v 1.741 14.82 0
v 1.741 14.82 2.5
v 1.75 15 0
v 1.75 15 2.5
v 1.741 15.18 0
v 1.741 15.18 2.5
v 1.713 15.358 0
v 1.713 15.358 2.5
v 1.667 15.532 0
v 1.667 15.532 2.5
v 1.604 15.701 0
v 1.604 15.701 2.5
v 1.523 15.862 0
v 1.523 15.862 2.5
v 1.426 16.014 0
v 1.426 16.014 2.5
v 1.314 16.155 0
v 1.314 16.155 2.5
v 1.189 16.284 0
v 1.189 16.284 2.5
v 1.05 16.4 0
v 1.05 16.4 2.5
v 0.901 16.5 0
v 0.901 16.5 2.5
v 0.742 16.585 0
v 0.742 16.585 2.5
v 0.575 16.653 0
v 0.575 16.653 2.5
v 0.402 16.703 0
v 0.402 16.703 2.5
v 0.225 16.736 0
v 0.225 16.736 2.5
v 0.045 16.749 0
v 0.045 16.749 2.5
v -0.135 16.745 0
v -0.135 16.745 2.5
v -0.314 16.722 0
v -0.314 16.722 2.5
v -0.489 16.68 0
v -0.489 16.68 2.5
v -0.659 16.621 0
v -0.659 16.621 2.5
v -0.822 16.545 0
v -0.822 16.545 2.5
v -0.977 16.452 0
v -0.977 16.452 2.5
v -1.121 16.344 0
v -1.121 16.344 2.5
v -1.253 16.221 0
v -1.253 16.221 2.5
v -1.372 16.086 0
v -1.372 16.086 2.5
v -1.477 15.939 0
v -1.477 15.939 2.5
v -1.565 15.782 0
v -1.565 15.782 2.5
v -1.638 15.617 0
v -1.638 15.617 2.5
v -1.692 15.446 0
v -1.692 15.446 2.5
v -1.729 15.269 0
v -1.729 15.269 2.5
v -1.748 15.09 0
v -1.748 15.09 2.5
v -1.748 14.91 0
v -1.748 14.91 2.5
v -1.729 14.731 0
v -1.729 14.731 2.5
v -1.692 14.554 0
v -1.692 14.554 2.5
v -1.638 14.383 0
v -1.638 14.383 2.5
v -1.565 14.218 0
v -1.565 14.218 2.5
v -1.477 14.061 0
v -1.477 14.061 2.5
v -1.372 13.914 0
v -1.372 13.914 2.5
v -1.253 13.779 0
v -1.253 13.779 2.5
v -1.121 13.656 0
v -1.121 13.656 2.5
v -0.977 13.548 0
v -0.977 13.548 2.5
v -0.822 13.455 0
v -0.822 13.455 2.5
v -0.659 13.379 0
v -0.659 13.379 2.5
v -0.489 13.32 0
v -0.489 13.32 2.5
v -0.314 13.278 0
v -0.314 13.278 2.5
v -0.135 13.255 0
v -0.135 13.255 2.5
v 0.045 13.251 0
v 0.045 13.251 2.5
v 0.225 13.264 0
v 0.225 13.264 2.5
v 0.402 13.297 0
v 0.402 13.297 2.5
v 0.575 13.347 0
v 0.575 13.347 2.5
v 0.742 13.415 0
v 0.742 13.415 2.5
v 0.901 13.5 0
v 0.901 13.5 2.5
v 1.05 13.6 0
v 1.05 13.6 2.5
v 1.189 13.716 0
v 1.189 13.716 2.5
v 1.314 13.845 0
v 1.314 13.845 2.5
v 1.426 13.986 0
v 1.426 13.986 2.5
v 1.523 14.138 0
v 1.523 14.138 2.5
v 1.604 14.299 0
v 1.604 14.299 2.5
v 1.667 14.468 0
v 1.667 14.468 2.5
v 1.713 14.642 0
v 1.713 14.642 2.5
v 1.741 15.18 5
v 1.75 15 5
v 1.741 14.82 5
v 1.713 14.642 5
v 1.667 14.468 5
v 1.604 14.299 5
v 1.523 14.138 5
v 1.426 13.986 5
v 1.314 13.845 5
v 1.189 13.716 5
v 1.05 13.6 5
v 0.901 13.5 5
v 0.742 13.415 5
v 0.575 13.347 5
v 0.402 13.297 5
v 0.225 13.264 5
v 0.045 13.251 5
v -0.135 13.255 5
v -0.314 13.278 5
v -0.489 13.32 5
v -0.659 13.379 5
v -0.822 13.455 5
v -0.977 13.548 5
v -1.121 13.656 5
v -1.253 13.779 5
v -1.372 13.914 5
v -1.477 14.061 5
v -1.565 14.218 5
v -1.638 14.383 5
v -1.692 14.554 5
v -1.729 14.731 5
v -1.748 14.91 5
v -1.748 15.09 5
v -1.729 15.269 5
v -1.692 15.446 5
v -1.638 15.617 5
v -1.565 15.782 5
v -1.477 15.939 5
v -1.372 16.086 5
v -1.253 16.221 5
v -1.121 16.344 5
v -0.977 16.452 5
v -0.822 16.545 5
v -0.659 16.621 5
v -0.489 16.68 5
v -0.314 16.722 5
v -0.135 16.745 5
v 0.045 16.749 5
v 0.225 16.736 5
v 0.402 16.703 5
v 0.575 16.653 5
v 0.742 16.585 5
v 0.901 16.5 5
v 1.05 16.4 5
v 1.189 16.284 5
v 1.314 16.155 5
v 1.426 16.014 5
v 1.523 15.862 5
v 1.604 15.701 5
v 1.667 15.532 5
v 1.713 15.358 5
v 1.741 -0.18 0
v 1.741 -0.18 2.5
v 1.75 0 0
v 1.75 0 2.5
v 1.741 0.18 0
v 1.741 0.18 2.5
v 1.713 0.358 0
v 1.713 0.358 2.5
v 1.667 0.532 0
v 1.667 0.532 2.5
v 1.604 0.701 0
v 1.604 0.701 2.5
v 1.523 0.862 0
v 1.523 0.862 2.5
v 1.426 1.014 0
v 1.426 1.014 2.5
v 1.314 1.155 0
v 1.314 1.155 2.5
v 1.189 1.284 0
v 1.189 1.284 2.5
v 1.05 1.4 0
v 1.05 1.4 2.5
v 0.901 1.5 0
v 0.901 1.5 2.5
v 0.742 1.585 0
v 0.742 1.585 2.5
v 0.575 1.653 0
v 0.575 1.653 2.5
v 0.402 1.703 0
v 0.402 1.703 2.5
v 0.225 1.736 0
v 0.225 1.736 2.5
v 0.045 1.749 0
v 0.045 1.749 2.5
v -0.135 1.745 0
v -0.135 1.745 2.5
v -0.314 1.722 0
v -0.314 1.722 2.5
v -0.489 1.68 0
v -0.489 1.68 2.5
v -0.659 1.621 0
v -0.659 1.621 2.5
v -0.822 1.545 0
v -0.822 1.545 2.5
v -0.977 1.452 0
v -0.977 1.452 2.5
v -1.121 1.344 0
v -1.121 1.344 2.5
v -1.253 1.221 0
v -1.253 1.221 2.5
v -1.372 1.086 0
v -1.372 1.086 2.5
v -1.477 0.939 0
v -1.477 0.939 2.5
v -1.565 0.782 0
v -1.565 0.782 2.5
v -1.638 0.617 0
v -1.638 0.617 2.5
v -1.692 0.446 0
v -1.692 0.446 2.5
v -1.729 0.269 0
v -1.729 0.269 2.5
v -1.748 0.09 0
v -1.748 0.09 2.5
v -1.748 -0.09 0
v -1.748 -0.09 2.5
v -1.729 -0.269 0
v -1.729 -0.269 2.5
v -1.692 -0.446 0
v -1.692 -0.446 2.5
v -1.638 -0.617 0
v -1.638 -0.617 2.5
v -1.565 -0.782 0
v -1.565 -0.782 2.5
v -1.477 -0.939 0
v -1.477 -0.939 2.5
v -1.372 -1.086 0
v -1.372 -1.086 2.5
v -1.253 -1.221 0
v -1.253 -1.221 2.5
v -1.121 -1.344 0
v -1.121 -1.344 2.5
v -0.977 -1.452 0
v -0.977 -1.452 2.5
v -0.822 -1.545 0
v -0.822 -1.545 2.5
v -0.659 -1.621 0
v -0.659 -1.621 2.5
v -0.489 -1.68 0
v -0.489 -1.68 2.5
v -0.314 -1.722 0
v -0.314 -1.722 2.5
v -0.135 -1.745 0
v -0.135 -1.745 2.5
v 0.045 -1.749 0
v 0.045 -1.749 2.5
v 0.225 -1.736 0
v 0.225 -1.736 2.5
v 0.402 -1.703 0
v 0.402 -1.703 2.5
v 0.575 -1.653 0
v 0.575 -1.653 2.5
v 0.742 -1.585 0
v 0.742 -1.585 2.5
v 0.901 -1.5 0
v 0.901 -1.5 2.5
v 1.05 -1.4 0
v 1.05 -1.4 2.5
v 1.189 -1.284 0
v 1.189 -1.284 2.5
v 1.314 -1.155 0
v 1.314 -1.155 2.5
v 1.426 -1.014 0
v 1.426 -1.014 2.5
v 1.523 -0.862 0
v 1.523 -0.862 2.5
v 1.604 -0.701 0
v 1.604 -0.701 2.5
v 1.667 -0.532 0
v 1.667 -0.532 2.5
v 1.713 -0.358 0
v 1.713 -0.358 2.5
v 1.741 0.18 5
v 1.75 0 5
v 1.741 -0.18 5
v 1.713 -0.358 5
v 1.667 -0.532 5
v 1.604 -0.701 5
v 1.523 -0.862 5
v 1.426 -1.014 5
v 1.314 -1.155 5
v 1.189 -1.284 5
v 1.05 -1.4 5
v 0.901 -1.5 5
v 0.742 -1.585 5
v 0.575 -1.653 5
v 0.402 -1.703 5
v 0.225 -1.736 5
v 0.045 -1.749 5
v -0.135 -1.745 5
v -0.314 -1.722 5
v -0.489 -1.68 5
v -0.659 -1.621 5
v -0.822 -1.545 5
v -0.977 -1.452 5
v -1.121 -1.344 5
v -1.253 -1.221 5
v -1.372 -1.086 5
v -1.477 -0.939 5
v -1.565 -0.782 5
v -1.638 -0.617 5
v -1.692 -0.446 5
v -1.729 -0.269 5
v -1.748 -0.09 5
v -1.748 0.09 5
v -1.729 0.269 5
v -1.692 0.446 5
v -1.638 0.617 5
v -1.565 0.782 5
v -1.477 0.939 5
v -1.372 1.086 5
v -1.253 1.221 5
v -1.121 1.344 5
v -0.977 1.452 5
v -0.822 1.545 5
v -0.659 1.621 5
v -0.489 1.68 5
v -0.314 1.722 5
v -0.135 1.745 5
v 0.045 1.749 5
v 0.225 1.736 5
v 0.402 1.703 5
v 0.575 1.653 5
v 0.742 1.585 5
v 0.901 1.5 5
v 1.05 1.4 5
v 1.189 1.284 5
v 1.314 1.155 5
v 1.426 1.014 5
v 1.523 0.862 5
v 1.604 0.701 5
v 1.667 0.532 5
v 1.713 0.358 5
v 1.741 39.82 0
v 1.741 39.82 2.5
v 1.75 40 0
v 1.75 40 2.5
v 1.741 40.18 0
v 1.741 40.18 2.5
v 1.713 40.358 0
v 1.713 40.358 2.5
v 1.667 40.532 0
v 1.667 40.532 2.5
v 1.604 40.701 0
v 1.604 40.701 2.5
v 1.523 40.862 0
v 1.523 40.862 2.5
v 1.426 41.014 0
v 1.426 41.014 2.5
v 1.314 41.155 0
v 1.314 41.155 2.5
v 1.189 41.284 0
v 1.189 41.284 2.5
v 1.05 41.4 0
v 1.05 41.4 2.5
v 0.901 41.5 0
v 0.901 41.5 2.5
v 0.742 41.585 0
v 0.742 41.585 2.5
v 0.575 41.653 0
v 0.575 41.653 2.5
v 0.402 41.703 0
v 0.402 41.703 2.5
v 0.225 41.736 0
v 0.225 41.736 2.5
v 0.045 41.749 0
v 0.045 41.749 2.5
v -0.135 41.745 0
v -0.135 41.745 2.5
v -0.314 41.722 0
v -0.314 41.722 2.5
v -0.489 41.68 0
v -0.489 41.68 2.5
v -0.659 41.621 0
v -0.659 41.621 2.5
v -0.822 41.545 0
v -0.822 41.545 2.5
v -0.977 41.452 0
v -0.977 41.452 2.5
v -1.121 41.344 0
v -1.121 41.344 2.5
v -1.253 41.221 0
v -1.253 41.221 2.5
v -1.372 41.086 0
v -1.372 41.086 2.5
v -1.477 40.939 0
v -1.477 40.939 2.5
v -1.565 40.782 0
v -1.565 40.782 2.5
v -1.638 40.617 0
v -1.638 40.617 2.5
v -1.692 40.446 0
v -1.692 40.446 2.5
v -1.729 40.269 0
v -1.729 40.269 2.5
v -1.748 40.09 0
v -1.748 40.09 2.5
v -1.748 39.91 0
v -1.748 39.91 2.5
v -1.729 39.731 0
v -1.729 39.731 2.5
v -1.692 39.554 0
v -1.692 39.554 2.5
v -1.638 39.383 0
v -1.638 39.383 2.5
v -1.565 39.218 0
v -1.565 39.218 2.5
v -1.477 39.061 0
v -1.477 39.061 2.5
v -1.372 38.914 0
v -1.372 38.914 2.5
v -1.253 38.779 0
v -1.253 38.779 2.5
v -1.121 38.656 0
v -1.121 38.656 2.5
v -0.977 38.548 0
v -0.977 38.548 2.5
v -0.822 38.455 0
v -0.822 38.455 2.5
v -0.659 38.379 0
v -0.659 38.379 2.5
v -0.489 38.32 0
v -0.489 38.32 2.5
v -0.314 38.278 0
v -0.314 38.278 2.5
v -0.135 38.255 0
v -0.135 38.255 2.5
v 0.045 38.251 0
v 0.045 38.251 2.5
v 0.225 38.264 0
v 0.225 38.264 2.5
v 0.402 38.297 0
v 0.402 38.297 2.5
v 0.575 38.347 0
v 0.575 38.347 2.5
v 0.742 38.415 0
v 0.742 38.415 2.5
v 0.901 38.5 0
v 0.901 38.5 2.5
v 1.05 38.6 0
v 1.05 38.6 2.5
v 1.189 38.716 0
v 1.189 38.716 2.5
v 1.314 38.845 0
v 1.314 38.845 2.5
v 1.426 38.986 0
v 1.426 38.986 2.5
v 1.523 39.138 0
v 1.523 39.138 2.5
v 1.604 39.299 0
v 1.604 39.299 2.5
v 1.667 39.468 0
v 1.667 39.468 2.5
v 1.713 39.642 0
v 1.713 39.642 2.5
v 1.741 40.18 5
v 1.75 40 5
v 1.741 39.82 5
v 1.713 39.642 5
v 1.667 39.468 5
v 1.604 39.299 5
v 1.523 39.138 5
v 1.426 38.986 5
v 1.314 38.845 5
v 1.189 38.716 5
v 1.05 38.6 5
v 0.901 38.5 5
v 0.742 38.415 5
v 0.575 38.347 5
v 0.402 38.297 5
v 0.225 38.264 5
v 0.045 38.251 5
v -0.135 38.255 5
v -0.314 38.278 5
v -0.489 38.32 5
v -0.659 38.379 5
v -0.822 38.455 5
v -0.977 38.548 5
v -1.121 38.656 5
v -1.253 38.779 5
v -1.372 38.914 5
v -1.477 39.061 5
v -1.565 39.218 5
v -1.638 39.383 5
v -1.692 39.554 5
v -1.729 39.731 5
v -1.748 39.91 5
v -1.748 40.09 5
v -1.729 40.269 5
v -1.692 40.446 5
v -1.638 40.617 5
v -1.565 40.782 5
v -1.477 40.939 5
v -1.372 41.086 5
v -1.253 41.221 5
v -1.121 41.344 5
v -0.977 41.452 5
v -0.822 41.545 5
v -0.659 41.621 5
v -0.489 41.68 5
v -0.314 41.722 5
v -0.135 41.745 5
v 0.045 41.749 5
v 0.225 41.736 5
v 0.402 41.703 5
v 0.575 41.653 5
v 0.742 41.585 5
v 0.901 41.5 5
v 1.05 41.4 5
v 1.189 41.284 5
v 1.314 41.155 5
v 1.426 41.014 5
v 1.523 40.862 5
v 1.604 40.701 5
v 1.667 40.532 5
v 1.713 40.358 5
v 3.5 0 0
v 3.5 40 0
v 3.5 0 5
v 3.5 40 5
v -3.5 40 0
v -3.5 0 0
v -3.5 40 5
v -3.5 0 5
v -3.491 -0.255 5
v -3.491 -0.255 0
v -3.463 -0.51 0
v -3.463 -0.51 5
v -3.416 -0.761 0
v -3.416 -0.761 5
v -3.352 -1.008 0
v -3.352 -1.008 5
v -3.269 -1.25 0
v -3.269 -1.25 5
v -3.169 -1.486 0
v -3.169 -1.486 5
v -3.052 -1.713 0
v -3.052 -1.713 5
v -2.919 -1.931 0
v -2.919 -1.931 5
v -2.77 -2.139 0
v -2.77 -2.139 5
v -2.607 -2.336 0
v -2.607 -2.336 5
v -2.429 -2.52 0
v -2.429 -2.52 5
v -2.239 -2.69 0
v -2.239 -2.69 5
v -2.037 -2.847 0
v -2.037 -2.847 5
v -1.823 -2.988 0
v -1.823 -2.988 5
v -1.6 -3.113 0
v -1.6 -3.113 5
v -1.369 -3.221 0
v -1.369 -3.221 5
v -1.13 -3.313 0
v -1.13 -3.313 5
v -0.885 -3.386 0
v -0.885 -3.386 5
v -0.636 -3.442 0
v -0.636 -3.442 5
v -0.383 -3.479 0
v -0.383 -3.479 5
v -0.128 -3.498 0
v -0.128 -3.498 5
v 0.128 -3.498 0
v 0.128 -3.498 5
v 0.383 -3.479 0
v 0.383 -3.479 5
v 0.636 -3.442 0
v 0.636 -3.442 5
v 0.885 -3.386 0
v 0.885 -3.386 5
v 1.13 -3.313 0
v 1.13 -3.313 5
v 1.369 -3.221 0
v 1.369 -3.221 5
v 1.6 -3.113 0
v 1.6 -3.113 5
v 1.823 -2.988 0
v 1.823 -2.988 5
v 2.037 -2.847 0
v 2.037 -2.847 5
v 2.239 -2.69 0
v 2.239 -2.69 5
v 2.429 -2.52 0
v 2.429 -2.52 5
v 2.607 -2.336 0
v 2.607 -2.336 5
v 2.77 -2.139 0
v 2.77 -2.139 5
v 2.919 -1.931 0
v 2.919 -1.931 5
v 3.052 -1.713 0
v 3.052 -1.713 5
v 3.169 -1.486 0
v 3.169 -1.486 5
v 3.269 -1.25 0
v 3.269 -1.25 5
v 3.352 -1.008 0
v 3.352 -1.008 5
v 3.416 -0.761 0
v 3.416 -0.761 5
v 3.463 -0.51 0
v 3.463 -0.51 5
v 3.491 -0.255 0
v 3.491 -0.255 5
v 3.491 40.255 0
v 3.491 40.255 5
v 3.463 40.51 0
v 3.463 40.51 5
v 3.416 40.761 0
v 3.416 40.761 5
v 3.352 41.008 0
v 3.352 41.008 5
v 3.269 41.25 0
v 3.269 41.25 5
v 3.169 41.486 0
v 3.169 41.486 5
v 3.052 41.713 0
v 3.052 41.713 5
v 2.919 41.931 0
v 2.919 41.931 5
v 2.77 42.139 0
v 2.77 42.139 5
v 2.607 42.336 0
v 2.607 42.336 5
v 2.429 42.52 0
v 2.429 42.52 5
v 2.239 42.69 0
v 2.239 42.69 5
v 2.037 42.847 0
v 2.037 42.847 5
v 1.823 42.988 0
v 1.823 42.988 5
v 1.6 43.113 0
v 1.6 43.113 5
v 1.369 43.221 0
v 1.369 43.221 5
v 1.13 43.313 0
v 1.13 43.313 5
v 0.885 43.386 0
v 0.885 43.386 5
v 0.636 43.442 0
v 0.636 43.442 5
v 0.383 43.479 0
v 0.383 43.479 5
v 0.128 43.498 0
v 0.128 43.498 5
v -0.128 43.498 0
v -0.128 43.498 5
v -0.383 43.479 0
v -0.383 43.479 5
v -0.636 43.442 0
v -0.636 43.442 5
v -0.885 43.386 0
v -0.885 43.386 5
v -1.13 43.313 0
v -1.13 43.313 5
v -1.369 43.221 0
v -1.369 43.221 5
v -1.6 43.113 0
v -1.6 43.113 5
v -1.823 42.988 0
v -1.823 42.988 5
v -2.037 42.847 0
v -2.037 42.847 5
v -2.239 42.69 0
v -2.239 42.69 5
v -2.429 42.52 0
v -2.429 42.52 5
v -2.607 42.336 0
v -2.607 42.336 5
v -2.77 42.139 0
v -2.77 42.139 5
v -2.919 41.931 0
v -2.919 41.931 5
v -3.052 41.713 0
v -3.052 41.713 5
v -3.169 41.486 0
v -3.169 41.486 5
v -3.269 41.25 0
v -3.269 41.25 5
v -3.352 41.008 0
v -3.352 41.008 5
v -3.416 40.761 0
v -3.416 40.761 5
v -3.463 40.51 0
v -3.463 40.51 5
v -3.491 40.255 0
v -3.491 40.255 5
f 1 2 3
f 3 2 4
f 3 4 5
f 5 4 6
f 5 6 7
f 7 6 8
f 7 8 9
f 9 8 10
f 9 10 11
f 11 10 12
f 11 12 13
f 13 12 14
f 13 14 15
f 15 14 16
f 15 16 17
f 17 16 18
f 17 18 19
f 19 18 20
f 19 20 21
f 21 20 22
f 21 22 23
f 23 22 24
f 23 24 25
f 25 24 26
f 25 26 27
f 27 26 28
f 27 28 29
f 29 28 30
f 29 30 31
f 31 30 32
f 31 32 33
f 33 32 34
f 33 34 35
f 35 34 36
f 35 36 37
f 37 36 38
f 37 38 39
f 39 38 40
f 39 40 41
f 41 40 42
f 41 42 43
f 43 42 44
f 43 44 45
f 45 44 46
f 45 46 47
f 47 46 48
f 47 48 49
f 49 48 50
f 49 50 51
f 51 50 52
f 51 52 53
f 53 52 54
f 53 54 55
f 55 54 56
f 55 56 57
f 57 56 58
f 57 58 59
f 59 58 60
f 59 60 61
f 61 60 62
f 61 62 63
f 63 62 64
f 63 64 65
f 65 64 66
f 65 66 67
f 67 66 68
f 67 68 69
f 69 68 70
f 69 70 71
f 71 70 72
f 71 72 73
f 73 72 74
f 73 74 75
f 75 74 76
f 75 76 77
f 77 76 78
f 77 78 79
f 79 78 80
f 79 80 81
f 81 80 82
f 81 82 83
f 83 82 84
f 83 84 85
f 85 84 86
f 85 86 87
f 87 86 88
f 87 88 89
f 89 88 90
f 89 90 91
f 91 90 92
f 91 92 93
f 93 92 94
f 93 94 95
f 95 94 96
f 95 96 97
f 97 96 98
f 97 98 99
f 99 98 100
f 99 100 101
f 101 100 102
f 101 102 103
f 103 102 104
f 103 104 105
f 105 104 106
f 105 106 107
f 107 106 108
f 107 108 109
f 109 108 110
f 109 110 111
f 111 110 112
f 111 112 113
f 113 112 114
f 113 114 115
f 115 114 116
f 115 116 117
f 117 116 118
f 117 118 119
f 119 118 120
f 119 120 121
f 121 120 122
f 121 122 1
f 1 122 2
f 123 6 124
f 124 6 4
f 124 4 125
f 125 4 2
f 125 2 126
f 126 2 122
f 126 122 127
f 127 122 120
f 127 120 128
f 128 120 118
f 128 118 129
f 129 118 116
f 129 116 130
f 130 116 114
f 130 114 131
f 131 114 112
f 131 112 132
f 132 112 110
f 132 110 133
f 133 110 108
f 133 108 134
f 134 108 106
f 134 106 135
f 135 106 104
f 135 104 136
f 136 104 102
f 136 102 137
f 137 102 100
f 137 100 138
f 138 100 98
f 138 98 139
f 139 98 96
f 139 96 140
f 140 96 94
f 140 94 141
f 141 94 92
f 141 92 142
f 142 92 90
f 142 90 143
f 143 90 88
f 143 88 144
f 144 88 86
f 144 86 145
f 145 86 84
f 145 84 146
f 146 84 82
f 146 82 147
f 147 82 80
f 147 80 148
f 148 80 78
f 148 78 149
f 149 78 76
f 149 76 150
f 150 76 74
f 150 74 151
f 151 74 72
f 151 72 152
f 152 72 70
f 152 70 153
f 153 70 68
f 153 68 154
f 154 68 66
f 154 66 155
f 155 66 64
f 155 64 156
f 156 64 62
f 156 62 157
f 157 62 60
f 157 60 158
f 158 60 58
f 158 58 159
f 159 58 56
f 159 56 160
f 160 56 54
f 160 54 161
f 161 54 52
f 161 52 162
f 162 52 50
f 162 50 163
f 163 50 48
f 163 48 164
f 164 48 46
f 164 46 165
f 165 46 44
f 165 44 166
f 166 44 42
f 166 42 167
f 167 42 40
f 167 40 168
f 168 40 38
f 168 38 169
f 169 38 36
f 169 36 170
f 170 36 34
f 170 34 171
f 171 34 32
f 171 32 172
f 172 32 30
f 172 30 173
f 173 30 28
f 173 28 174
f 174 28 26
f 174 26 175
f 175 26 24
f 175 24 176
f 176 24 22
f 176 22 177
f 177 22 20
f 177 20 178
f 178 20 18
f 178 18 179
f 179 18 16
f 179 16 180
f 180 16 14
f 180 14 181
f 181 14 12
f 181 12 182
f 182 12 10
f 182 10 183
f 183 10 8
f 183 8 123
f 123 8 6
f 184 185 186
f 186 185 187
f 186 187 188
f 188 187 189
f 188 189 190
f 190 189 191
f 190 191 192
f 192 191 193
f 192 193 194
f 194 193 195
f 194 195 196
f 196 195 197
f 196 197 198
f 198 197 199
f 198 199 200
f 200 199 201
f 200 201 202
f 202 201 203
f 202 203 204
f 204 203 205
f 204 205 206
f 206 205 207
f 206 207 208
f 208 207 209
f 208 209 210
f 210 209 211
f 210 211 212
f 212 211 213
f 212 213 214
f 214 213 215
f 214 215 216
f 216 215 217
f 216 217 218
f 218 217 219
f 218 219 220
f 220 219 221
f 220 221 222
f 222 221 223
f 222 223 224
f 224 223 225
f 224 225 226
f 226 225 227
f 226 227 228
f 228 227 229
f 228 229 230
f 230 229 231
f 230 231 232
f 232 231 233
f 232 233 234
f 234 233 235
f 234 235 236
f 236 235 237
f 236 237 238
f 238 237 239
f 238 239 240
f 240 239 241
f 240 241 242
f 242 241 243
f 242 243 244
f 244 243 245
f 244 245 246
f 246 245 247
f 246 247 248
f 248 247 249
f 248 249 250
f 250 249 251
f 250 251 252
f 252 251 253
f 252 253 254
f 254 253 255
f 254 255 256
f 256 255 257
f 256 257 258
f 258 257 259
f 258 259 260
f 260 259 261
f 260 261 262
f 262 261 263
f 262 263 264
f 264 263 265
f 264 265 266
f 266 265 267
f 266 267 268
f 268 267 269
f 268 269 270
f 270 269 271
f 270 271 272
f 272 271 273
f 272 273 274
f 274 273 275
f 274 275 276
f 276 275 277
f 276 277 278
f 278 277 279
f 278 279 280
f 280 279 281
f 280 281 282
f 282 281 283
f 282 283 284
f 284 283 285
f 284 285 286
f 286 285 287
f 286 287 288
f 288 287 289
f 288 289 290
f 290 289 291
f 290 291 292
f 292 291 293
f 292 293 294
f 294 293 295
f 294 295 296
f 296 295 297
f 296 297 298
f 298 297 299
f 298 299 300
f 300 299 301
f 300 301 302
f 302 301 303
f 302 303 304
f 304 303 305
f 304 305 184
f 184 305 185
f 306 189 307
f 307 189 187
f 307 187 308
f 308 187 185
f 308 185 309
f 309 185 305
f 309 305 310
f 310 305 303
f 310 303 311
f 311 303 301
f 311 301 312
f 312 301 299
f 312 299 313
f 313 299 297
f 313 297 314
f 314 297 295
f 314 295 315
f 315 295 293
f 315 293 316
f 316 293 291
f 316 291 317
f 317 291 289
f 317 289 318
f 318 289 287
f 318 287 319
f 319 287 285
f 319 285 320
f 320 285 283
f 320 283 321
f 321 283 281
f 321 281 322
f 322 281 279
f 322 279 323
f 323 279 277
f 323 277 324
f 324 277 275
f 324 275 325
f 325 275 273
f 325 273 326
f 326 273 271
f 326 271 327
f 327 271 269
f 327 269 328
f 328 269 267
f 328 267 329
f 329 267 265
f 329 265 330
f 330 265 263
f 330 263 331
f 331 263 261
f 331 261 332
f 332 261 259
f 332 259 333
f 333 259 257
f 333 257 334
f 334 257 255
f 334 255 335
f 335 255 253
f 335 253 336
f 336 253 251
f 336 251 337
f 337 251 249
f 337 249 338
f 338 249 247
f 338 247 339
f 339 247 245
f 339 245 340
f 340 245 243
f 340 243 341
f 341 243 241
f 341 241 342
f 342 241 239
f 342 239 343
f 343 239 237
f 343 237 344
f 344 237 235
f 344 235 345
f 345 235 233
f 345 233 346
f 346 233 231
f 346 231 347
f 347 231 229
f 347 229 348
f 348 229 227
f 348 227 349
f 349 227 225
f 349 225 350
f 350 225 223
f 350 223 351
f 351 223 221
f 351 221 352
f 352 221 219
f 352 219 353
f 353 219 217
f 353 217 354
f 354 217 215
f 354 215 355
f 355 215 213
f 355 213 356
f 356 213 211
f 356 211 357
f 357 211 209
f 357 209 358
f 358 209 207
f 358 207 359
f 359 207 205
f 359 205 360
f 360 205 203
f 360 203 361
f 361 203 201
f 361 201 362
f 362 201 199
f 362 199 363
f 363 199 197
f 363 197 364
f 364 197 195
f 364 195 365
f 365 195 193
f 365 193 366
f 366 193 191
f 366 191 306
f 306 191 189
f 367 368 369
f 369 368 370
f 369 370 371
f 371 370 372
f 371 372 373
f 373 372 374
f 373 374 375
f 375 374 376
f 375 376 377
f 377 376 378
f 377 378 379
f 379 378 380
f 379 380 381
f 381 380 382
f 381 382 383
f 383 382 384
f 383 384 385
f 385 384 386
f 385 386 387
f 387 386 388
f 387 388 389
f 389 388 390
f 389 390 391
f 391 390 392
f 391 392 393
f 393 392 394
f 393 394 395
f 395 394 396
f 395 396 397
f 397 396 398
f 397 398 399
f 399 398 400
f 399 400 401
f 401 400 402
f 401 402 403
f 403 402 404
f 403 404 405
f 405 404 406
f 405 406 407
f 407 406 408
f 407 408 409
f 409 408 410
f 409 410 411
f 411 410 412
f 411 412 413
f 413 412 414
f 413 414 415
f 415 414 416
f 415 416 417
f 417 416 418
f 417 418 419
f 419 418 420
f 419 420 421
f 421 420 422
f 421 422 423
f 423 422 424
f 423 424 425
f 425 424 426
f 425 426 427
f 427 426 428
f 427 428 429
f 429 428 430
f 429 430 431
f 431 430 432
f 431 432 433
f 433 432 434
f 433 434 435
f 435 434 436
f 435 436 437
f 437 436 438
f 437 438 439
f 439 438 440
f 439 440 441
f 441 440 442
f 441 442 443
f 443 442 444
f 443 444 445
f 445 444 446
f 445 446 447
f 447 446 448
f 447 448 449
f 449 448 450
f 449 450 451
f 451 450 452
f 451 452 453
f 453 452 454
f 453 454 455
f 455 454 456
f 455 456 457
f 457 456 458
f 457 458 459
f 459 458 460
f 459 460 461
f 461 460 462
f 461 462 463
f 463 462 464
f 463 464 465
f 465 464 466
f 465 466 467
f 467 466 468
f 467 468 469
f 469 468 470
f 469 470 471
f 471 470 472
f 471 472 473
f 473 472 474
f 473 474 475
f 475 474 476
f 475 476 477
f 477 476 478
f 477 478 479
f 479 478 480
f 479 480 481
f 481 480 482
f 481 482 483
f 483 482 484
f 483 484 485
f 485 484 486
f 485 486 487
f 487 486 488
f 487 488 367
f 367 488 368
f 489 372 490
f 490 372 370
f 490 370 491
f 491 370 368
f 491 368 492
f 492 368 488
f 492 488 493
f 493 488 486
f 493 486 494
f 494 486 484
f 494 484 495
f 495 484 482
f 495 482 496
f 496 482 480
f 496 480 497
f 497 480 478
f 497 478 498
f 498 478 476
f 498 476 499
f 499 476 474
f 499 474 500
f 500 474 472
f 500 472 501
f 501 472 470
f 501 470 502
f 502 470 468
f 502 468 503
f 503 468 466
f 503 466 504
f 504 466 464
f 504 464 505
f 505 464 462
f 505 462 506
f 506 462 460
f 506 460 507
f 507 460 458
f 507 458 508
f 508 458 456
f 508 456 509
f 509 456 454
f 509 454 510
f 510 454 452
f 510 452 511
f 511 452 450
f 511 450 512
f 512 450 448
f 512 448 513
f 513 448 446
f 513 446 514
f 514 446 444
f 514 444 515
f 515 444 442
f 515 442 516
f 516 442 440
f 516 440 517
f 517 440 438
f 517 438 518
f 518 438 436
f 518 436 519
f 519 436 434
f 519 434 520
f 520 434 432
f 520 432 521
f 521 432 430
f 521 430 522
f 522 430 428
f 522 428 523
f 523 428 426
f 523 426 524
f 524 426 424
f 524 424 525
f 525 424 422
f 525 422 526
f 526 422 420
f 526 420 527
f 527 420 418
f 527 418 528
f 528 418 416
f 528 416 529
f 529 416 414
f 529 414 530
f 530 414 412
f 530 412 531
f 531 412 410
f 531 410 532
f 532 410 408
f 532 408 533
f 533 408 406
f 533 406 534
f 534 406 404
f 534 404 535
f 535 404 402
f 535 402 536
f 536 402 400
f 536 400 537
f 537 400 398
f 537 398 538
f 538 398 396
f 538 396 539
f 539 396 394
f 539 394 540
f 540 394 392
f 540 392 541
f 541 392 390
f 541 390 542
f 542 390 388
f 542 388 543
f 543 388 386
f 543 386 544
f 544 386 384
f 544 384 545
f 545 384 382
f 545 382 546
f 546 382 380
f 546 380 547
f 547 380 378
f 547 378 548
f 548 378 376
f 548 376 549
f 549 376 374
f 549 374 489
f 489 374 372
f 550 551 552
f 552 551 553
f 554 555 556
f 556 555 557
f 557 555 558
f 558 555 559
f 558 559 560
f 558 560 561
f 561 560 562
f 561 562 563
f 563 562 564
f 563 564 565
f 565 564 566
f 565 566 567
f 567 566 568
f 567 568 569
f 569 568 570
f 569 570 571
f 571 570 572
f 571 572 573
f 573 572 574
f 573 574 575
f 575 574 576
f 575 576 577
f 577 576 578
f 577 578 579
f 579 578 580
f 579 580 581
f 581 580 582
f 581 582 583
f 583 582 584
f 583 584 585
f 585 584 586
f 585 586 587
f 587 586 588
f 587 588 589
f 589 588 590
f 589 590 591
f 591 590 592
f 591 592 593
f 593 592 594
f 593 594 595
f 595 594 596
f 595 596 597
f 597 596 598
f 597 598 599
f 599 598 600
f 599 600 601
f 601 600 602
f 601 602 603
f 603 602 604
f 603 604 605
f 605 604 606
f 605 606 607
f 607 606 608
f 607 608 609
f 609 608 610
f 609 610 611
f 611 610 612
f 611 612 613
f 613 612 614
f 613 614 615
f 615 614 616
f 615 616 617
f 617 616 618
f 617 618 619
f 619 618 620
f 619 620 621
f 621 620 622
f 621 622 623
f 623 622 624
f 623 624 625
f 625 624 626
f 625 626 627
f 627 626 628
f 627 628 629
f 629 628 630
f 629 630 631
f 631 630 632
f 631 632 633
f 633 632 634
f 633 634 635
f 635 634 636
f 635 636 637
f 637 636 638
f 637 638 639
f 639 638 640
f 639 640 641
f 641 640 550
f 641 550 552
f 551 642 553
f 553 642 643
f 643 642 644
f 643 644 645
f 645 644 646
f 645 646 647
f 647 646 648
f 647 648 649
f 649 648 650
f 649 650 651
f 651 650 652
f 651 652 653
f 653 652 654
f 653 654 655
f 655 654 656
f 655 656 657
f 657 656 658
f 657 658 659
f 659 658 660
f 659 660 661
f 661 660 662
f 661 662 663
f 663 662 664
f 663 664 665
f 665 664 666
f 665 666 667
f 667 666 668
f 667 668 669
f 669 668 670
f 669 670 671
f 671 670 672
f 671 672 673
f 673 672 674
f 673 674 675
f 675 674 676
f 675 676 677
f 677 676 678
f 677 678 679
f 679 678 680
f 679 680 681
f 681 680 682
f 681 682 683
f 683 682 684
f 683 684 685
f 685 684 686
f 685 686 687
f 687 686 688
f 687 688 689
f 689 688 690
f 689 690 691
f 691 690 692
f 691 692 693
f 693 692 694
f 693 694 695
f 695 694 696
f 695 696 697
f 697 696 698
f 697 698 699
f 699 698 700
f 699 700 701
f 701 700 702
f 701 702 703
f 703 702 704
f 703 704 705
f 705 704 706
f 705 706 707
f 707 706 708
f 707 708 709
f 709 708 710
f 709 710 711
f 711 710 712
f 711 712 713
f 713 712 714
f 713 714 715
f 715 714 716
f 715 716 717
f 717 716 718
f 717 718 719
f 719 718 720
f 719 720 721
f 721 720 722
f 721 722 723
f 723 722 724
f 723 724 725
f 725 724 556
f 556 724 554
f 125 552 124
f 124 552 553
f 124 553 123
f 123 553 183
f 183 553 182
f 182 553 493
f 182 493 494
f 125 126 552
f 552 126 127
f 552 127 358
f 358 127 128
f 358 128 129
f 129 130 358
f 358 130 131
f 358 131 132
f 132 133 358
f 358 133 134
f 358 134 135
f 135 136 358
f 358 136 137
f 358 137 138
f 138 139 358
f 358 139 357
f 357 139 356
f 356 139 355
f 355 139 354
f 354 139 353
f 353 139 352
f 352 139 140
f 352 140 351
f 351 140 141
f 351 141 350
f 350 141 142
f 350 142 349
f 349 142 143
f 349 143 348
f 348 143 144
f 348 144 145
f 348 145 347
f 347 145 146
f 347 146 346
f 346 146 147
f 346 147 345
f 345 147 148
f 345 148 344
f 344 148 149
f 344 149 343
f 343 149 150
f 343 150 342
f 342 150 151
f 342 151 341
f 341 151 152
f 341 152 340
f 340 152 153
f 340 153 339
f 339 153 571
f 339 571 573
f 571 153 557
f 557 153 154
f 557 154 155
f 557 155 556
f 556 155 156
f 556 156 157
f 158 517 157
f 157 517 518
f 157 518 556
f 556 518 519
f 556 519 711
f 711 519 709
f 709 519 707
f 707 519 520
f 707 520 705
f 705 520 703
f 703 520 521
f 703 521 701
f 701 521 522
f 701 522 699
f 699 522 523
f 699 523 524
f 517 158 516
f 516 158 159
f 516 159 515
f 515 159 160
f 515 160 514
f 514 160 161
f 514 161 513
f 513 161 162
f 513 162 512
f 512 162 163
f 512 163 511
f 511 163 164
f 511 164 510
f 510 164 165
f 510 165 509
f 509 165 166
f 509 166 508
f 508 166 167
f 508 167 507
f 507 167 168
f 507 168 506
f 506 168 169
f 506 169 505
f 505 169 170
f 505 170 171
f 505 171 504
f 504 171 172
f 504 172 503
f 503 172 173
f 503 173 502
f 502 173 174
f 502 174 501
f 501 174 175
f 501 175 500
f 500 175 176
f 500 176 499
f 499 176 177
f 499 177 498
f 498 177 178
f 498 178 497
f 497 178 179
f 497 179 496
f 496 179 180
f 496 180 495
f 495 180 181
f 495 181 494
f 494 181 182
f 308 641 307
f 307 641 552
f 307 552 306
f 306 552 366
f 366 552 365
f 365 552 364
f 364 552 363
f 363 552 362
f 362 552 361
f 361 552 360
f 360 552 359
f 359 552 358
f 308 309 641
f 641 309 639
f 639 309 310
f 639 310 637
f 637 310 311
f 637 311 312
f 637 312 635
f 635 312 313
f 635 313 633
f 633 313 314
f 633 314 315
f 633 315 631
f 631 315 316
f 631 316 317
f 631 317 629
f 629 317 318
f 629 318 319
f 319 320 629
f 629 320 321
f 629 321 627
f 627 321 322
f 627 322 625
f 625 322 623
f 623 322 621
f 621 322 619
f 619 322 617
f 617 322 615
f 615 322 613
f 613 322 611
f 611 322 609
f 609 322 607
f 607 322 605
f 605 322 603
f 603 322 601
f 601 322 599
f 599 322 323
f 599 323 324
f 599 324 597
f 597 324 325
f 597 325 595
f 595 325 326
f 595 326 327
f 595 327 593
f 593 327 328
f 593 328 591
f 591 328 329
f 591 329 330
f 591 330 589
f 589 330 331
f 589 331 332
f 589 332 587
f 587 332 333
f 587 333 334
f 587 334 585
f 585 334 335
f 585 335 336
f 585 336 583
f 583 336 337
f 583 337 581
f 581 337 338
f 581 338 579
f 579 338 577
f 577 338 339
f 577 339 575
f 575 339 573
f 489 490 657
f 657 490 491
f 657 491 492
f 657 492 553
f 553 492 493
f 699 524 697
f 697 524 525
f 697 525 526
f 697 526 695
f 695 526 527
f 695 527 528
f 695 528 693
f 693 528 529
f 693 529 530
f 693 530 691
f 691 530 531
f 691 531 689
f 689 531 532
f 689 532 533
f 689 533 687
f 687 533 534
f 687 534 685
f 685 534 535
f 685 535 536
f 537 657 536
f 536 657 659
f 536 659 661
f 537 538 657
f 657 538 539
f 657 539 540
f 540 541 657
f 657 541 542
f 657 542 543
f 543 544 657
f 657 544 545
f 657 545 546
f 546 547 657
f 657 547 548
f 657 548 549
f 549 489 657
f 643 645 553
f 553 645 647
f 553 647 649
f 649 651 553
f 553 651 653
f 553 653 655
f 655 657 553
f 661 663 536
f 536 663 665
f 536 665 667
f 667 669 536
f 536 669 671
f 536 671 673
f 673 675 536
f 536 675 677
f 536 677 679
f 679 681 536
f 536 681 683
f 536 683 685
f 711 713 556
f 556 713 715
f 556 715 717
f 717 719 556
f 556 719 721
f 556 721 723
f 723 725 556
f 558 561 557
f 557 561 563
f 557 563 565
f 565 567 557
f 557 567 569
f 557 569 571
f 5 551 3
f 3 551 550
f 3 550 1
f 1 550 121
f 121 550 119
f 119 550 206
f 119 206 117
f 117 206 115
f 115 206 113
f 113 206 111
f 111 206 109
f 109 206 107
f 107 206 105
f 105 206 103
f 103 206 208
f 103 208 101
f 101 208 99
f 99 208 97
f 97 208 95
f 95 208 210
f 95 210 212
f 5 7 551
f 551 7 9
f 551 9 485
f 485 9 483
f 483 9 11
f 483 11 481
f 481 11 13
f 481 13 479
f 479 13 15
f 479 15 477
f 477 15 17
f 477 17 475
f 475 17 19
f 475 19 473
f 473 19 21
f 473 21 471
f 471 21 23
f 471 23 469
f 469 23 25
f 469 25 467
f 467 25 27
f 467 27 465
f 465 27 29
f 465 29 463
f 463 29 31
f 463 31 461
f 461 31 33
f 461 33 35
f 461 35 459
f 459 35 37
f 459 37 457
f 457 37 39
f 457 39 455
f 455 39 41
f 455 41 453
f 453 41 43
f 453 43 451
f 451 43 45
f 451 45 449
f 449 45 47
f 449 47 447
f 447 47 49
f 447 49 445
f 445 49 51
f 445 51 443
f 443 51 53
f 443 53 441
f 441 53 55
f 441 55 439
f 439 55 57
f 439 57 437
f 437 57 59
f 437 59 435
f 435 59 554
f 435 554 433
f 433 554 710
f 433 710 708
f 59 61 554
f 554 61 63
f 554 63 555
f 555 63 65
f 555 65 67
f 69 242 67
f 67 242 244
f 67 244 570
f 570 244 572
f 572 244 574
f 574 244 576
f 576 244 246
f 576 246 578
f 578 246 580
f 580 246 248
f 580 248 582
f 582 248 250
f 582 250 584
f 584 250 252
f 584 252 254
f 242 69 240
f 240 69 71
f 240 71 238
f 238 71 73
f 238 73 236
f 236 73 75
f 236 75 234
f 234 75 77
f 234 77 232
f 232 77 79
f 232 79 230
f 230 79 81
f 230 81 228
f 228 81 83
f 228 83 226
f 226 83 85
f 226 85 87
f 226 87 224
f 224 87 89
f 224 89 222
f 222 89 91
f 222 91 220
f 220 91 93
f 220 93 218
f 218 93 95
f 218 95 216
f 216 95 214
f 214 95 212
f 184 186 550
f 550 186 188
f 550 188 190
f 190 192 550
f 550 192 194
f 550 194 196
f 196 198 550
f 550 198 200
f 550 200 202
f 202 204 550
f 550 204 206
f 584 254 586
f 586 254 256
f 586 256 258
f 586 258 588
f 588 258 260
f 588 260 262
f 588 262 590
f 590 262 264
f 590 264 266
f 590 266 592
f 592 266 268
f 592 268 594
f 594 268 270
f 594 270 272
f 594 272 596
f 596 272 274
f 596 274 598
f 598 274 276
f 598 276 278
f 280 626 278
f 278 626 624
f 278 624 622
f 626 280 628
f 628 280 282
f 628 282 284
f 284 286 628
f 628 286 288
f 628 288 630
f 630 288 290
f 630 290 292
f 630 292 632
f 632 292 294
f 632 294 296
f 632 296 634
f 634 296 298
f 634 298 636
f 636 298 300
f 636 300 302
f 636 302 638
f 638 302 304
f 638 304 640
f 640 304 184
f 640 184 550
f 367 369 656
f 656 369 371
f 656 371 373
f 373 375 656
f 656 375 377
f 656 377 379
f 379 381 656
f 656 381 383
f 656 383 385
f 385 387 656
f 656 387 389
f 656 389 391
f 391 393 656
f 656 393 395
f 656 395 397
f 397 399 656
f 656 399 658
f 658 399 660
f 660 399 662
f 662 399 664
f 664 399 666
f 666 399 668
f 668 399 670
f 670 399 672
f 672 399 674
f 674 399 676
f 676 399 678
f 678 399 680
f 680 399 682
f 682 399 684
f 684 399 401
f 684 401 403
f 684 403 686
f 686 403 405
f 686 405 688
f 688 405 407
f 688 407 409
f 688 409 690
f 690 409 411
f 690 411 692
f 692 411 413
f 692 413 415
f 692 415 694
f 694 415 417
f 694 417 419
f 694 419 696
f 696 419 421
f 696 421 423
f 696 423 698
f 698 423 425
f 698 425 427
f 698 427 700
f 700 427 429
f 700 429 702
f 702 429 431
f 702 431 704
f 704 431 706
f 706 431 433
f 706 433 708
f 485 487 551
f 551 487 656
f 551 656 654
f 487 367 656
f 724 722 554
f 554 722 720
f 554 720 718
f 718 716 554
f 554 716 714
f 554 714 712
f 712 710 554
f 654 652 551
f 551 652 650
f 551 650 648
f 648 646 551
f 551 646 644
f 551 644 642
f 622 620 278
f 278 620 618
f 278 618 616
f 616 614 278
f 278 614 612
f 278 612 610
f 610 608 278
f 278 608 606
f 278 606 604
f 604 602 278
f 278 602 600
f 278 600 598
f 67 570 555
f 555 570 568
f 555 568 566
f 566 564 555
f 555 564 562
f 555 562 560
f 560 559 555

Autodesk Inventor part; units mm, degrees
ref_plane "YZ Plane" through (0, 0, 0) normal (1, 0, 0) x (0, 1, 0)
ref_plane "XZ Plane" through (0, 0, 0) normal (0, 1, 0) x (-1, 0, 0)
ref_plane "XY Plane" through (0, 0, 0) normal (0, 0, 1) x (1, 0, 0)
sketch "Sketch1" plane through (0, 0, 0) normal (0, 0, 1) x (1, 0, 0)
  circle A0 centre (0, 0) radius 3.5
  line L0 (0, 0) -> (0, 40)
  circle A1 centre (0, 40) radius 3.5
  line L1 (3.5, 40) -> (3.5, 0)
  line L2 (-3.5, 40) -> (-3.5, 0)
  dimension "d0" = 7
  dimension "d1" = 40
  dimension "d2" = 7
extrude "Extrusion1" add sketch "Sketch1" along normal blind 5
sketch "Sketch2" plane through (0, 0, 5) normal (0, 0, 1) x (1, 0, 0)
  circle A0 centre (0, 0) radius 1.75
  arc A1 (3.5, 40) -> (-3.5, 40) centre (0, 40) ccw projected
  circle A2 centre (0, 40) radius 1.75
  dimension "d5" = 3.5
  dimension "d6" = 3.5
extrude "Extrusion2" cut sketch "Sketch2" against normal blind 5
sketch "Sketch3" plane through (0, 0, 5) normal (0, 0, 1) x (1, 0, 0)
  line L0 (0, 0) -> (0, 15)
  circle A0 centre (0, 15) radius 1.75
  dimension "d9" = 15
  dimension "d10" = 3.5
extrude "Extrusion3" cut sketch "Sketch3" against normal blind 10
properties part number "bar"
